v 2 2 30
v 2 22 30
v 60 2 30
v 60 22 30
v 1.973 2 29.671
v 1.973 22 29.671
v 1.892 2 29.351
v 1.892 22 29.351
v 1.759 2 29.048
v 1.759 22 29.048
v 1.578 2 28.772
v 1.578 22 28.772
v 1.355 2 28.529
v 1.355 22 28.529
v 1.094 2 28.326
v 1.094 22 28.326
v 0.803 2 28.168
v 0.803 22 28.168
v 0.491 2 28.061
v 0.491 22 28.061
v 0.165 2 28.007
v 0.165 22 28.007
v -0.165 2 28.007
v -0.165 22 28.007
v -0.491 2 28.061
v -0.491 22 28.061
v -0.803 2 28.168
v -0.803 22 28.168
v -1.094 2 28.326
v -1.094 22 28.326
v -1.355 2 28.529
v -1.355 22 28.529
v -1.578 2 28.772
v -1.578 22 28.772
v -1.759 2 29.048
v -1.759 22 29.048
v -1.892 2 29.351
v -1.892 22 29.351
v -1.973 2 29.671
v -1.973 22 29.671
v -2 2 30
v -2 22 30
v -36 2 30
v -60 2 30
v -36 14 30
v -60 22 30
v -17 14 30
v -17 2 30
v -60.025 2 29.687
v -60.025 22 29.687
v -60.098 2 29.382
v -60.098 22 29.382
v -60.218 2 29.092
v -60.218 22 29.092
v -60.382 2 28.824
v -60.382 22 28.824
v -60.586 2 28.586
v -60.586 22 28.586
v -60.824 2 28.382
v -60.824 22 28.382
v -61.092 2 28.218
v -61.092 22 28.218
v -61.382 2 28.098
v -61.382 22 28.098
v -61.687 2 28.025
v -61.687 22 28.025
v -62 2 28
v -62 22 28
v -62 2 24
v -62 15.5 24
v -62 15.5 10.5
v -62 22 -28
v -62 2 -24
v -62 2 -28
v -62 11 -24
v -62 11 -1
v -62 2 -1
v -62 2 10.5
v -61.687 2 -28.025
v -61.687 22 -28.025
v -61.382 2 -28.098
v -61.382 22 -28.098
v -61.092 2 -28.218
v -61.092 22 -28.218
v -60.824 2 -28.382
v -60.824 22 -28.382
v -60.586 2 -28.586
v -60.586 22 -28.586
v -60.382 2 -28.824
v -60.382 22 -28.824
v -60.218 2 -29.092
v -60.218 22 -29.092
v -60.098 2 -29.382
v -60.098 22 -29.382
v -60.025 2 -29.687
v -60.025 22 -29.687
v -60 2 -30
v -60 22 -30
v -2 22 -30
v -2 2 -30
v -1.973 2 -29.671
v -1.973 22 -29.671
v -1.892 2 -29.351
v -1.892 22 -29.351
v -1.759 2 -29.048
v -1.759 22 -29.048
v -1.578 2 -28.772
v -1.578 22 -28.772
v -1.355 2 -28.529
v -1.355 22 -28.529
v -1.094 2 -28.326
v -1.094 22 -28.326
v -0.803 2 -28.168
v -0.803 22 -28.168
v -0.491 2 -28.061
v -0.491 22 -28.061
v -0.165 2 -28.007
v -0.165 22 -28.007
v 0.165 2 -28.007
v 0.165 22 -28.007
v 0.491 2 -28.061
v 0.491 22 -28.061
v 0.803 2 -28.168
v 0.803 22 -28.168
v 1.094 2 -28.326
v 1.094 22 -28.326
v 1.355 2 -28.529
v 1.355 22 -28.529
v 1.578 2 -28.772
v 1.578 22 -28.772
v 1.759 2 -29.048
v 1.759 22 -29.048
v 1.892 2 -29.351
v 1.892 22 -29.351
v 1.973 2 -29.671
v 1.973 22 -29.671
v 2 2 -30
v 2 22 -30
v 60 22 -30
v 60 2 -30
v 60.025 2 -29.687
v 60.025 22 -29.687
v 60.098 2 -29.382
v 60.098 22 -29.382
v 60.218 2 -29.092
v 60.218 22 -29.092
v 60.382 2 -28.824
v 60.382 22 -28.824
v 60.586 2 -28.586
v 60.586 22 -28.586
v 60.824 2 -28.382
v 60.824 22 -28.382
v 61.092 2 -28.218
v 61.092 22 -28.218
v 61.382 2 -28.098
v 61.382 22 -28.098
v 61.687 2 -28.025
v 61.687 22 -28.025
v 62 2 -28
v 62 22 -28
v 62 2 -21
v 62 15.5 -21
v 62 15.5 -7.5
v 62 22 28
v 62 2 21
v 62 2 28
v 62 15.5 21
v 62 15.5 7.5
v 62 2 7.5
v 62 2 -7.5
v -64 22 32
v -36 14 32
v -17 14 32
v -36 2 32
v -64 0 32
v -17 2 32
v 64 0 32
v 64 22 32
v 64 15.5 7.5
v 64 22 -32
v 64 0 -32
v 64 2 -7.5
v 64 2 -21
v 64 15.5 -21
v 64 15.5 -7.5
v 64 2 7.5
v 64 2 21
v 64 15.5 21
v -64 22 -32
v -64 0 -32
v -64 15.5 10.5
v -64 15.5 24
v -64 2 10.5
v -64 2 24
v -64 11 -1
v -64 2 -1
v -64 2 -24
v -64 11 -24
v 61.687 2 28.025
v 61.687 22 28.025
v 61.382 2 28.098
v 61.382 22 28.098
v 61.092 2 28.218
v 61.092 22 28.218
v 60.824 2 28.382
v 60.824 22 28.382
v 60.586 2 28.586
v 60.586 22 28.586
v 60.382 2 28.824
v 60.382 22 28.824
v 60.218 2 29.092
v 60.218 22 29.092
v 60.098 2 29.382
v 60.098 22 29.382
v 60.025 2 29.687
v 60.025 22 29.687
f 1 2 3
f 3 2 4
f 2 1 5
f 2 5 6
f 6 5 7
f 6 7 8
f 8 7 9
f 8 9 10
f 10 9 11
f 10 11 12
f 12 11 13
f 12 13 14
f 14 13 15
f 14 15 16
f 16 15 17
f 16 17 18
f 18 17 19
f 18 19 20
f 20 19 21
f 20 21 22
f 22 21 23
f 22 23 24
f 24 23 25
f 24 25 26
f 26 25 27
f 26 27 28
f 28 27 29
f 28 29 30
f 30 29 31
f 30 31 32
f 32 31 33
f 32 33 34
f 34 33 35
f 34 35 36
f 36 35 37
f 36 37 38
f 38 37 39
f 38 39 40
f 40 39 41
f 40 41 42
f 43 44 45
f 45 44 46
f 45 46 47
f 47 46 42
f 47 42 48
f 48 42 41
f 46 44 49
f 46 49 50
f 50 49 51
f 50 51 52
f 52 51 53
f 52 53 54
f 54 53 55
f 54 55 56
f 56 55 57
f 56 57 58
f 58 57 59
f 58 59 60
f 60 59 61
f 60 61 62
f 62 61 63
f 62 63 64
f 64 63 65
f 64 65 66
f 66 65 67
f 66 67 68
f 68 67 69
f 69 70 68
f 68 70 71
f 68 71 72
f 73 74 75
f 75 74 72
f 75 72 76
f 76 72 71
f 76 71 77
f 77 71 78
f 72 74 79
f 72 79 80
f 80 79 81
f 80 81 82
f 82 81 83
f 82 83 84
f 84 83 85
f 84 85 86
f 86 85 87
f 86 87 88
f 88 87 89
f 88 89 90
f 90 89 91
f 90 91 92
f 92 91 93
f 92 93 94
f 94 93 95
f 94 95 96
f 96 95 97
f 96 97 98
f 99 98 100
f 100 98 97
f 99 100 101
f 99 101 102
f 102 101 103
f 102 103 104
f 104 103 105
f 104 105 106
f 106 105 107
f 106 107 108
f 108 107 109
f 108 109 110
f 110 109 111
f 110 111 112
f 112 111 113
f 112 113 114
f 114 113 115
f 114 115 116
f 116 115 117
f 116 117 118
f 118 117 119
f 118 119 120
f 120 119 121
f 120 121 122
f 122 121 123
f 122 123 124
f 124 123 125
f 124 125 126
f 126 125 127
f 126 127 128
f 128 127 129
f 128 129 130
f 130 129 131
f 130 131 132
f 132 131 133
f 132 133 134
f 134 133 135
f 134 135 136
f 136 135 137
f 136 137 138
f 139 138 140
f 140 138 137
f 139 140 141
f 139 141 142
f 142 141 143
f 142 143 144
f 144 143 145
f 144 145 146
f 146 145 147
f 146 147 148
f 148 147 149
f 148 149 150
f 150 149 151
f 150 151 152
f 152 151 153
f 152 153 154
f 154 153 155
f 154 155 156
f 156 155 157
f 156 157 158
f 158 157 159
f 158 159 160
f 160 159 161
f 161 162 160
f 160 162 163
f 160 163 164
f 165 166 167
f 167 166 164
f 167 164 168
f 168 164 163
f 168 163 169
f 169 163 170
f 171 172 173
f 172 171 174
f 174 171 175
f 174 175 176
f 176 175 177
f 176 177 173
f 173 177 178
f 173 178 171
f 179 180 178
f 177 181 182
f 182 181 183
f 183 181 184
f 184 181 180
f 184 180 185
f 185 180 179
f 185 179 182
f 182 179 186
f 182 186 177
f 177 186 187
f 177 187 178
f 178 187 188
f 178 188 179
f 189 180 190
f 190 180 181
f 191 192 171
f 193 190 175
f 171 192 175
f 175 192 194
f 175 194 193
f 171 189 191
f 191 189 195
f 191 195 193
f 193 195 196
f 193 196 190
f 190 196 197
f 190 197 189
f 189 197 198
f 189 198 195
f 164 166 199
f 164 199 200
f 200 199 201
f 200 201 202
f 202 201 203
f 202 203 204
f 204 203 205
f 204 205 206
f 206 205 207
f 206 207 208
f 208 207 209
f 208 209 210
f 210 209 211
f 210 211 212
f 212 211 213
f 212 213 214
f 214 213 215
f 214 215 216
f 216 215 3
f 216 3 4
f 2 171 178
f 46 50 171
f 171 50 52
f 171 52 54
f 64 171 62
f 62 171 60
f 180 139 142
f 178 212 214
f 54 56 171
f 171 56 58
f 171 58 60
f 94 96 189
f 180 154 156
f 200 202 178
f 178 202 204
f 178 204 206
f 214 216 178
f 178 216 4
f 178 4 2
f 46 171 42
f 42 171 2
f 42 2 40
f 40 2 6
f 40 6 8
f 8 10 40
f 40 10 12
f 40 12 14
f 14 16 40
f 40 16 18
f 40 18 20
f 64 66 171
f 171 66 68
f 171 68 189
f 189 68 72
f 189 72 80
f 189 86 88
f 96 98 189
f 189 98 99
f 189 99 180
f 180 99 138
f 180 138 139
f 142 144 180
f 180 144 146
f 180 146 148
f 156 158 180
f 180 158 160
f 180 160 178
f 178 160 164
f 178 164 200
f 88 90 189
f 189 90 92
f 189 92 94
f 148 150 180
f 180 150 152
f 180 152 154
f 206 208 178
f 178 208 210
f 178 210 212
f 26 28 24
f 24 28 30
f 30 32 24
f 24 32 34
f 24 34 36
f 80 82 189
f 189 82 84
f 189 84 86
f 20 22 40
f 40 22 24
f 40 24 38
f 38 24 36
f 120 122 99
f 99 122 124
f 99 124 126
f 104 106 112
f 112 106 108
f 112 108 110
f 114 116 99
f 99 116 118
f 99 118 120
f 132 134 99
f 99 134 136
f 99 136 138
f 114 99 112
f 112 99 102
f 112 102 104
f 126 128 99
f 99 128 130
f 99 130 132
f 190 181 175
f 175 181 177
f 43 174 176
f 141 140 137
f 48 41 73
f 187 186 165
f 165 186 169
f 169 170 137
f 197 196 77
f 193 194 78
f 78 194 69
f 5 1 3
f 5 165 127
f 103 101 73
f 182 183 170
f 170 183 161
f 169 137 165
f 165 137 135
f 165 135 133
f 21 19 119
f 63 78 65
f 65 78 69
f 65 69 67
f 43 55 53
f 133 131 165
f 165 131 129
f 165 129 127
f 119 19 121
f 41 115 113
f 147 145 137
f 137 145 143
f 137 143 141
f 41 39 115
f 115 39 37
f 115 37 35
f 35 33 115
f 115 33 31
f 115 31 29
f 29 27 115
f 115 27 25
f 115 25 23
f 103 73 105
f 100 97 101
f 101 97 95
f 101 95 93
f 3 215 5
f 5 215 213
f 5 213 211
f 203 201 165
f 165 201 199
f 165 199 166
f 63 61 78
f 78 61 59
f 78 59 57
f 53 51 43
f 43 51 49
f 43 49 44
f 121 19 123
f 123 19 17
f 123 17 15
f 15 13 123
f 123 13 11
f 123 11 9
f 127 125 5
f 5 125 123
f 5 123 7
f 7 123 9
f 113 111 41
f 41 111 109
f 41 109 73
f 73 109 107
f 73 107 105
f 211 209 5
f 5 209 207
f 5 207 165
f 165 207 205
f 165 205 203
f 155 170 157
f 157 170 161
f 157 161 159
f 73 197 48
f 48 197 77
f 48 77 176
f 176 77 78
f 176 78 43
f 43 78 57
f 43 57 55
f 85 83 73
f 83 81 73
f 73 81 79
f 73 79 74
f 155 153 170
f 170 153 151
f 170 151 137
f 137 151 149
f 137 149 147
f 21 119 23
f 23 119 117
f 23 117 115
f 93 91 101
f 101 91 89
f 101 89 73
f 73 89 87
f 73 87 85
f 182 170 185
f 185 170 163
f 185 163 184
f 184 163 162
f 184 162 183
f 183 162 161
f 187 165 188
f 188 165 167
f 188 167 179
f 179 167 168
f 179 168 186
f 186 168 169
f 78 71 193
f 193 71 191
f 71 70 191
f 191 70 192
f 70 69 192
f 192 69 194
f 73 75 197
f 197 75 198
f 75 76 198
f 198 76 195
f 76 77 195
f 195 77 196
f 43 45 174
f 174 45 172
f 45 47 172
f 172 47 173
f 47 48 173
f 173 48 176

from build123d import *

# Parameters (mm, degrees)
SKETCH3_W           = 128
SKETCH3_H           = 64
BOSS_EXTRUDE1_DEPTH = 22
BOSS_EXTRUDE3_DEPTH = 2
CUT_EXTRUDE1_REACH  = 135.761
SKETCH5_W           = 13.5
SKETCH5_H           = 13.5
SKETCH6_W           = 23
SKETCH6_H           = 9
SKETCH6_W_2         = 13.5
SKETCH6_H_2         = 13.5
CUT_EXTRUDE2_DEPTH  = 2
SKETCH7_W           = 19
SKETCH7_H           = 12
CUT_EXTRUDE3_DEPTH  = 2


with BuildPart() as part:
    # Sketch3 → Boss-Extrude1 (new body)
    with BuildSketch(Plane(origin=(0, 0, 0), x_dir=(1, 0, 0), z_dir=(0, 1, 0))):
        Rectangle(SKETCH3_W, SKETCH3_H)
        with BuildLine():
            Line((2, 30), (60, 30))
            ThreePointArc((60, 30), (60.585786438, 28.585786438), (62, 28))
            Line((62, 28), (62, -28))
            ThreePointArc((62, -28), (60.585786438, -28.585786438), (60, -30))
            Line((60, -30), (2, -30))
            ThreePointArc((2, -30), (0, -28), (-2, -30))
            Line((-2, -30), (-60, -30))
            ThreePointArc((-60, -30), (-60.585786438, -28.585786438), (-62, -28))
            Line((-62, -28), (-62, 28))
            ThreePointArc((-62, 28), (-60.585786438, 28.585786438), (-60, 30))
            Line((-60, 30), (-2, 30))
            ThreePointArc((-2, 30), (0, 28), (2, 30))
        make_face(mode=Mode.SUBTRACT)
    extrude(amount=BOSS_EXTRUDE1_DEPTH)

    # Sketch3<5> → Boss-Extrude3 (add)
    with BuildSketch(Plane(origin=(0, 0, 0), x_dir=(1, 0, 0), z_dir=(0, 1, 0))):
        with BuildLine():
            ThreePointArc((62, 28), (60.585786438, 28.585786438), (60, 30))
            Line((60, 30), (2, 30))
            ThreePointArc((2, 30), (0, 28), (-2, 30))
            Line((-2, 30), (-60, 30))
            ThreePointArc((-60, 30), (-60.585786438, 28.585786438), (-62, 28))
            Line((-62, 28), (-62, -28))
            ThreePointArc((-62, -28), (-60.585786438, -28.585786438), (-60, -30))
            Line((-60, -30), (-2, -30))
            ThreePointArc((-2, -30), (0, -28), (2, -30))
            Line((2, -30), (60, -30))
            ThreePointArc((60, -30), (60.585786438, -28.585786438), (62, -28))
            Line((62, -28), (62, 28))
        make_face()
    extrude(amount=BOSS_EXTRUDE3_DEPTH)

    # Sketch5 → Cut-Extrude1 (cut, up to next)
    with BuildSketch(Plane(origin=(64, 0, 0), x_dir=(0, 0, -1), z_dir=(1, 0, 0)), mode=Mode.PRIVATE) as cut_extrude1_sk1:
        with Locations((14.25, 8.75)):
            Rectangle(SKETCH5_W, SKETCH5_H)
    cut_extrude1_tool1 = extrude(cut_extrude1_sk1.sketch, amount=-CUT_EXTRUDE1_REACH, mode=Mode.PRIVATE) & part.part
    # Sketch5 → Cut-Extrude1 (cut, up to next)
    with BuildSketch(Plane(origin=(64, 0, 0), x_dir=(0, 0, -1), z_dir=(1, 0, 0)), mode=Mode.PRIVATE) as cut_extrude1_sk2:
        with Locations((-14.25, 8.75)):
            Rectangle(SKETCH5_W, SKETCH5_H)
    cut_extrude1_tool2 = extrude(cut_extrude1_sk2.sketch, amount=-CUT_EXTRUDE1_REACH, mode=Mode.PRIVATE) & part.part
    add(cut_extrude1_tool1.solids().sort_by_distance((64, 8.75, -14.25))[0], mode=Mode.SUBTRACT)
    add(cut_extrude1_tool2.solids().sort_by_distance((64, 8.75, 14.25))[0], mode=Mode.SUBTRACT)

    # Sketch6 → Cut-Extrude2 (cut)
    with BuildSketch(Plane.ZY.offset(64)):
        with Locations((-12.5, 6.5)):
            Rectangle(SKETCH6_W, SKETCH6_H)
        with Locations((17.25, 8.75)):
            Rectangle(SKETCH6_W_2, SKETCH6_H_2)
    extrude(amount=-CUT_EXTRUDE2_DEPTH, mode=Mode.SUBTRACT)

    # Sketch7 → Cut-Extrude3 (cut)
    with BuildSketch(Plane.XY.offset(32)):
        with Locations((-26.5, 8)):
            Rectangle(SKETCH7_W, SKETCH7_H)
    extrude(amount=-CUT_EXTRUDE3_DEPTH, mode=Mode.SUBTRACT)


solid = part.part
